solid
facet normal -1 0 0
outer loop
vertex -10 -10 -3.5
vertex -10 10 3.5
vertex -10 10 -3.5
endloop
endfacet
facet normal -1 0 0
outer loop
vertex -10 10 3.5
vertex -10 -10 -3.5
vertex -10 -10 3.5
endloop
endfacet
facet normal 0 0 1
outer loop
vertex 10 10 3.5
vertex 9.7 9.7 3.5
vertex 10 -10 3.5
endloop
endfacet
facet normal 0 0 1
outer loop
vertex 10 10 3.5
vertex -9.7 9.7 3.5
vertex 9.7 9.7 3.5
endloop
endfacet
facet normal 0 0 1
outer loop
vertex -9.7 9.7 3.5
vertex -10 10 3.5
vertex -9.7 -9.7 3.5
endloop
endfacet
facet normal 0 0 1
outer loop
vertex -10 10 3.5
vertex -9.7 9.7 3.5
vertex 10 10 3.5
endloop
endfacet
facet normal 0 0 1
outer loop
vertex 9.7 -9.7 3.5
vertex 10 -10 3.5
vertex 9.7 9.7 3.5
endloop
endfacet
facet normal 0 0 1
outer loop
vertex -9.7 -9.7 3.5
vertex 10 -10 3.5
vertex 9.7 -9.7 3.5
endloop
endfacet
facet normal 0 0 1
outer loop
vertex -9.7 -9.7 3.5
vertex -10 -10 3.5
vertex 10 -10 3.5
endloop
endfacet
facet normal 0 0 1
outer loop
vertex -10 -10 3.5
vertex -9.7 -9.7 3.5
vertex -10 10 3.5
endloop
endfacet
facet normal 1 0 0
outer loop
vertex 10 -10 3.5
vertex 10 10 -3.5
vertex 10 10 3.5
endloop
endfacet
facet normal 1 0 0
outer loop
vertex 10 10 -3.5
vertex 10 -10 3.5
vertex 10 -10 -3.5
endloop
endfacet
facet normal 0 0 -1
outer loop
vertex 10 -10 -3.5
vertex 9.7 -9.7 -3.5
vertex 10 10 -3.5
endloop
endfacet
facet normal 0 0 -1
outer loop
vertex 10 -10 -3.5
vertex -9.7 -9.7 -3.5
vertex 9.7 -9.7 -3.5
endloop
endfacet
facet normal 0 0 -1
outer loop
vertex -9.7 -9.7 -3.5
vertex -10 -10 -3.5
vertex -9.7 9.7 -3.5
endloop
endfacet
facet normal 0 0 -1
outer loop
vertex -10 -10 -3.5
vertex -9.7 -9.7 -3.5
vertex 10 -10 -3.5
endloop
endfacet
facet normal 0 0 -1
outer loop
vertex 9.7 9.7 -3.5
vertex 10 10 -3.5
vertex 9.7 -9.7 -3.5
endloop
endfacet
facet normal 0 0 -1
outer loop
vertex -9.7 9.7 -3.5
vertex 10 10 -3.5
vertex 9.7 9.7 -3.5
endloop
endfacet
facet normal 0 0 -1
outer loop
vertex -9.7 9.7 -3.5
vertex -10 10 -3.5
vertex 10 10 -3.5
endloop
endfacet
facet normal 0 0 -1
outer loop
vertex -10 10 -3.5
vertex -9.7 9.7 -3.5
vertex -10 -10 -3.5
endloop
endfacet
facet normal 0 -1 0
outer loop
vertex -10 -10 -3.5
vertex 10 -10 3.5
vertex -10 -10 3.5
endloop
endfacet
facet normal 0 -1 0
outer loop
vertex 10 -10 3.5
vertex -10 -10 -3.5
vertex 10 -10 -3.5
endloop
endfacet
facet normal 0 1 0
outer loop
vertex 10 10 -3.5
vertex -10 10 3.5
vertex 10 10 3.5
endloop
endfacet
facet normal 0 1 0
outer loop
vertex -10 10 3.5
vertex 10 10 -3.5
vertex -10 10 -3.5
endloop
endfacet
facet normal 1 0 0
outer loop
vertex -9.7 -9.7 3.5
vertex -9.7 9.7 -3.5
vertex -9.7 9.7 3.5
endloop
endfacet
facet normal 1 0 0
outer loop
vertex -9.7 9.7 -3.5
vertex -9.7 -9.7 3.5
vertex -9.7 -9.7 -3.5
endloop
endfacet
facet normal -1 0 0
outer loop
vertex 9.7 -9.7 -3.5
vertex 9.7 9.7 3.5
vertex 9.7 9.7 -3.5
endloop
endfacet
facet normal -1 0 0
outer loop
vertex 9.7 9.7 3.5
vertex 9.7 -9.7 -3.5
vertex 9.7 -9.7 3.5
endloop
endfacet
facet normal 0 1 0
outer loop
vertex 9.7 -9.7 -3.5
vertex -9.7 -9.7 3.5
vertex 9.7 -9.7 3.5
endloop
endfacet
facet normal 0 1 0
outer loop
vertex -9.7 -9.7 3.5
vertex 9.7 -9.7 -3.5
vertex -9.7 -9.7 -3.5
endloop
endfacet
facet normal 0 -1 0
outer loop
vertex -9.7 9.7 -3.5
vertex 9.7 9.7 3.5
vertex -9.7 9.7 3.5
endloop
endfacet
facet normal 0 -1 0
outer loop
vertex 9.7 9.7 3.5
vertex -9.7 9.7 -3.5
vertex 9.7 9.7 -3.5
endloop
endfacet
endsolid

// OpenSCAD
wallTh = 0.3;
wallH = 7;
difference()
{
	cube([20,20,wallH],center=true);
	cube([20-wallTh*2,20-wallTh*2,wallH+1],center=true);
}
